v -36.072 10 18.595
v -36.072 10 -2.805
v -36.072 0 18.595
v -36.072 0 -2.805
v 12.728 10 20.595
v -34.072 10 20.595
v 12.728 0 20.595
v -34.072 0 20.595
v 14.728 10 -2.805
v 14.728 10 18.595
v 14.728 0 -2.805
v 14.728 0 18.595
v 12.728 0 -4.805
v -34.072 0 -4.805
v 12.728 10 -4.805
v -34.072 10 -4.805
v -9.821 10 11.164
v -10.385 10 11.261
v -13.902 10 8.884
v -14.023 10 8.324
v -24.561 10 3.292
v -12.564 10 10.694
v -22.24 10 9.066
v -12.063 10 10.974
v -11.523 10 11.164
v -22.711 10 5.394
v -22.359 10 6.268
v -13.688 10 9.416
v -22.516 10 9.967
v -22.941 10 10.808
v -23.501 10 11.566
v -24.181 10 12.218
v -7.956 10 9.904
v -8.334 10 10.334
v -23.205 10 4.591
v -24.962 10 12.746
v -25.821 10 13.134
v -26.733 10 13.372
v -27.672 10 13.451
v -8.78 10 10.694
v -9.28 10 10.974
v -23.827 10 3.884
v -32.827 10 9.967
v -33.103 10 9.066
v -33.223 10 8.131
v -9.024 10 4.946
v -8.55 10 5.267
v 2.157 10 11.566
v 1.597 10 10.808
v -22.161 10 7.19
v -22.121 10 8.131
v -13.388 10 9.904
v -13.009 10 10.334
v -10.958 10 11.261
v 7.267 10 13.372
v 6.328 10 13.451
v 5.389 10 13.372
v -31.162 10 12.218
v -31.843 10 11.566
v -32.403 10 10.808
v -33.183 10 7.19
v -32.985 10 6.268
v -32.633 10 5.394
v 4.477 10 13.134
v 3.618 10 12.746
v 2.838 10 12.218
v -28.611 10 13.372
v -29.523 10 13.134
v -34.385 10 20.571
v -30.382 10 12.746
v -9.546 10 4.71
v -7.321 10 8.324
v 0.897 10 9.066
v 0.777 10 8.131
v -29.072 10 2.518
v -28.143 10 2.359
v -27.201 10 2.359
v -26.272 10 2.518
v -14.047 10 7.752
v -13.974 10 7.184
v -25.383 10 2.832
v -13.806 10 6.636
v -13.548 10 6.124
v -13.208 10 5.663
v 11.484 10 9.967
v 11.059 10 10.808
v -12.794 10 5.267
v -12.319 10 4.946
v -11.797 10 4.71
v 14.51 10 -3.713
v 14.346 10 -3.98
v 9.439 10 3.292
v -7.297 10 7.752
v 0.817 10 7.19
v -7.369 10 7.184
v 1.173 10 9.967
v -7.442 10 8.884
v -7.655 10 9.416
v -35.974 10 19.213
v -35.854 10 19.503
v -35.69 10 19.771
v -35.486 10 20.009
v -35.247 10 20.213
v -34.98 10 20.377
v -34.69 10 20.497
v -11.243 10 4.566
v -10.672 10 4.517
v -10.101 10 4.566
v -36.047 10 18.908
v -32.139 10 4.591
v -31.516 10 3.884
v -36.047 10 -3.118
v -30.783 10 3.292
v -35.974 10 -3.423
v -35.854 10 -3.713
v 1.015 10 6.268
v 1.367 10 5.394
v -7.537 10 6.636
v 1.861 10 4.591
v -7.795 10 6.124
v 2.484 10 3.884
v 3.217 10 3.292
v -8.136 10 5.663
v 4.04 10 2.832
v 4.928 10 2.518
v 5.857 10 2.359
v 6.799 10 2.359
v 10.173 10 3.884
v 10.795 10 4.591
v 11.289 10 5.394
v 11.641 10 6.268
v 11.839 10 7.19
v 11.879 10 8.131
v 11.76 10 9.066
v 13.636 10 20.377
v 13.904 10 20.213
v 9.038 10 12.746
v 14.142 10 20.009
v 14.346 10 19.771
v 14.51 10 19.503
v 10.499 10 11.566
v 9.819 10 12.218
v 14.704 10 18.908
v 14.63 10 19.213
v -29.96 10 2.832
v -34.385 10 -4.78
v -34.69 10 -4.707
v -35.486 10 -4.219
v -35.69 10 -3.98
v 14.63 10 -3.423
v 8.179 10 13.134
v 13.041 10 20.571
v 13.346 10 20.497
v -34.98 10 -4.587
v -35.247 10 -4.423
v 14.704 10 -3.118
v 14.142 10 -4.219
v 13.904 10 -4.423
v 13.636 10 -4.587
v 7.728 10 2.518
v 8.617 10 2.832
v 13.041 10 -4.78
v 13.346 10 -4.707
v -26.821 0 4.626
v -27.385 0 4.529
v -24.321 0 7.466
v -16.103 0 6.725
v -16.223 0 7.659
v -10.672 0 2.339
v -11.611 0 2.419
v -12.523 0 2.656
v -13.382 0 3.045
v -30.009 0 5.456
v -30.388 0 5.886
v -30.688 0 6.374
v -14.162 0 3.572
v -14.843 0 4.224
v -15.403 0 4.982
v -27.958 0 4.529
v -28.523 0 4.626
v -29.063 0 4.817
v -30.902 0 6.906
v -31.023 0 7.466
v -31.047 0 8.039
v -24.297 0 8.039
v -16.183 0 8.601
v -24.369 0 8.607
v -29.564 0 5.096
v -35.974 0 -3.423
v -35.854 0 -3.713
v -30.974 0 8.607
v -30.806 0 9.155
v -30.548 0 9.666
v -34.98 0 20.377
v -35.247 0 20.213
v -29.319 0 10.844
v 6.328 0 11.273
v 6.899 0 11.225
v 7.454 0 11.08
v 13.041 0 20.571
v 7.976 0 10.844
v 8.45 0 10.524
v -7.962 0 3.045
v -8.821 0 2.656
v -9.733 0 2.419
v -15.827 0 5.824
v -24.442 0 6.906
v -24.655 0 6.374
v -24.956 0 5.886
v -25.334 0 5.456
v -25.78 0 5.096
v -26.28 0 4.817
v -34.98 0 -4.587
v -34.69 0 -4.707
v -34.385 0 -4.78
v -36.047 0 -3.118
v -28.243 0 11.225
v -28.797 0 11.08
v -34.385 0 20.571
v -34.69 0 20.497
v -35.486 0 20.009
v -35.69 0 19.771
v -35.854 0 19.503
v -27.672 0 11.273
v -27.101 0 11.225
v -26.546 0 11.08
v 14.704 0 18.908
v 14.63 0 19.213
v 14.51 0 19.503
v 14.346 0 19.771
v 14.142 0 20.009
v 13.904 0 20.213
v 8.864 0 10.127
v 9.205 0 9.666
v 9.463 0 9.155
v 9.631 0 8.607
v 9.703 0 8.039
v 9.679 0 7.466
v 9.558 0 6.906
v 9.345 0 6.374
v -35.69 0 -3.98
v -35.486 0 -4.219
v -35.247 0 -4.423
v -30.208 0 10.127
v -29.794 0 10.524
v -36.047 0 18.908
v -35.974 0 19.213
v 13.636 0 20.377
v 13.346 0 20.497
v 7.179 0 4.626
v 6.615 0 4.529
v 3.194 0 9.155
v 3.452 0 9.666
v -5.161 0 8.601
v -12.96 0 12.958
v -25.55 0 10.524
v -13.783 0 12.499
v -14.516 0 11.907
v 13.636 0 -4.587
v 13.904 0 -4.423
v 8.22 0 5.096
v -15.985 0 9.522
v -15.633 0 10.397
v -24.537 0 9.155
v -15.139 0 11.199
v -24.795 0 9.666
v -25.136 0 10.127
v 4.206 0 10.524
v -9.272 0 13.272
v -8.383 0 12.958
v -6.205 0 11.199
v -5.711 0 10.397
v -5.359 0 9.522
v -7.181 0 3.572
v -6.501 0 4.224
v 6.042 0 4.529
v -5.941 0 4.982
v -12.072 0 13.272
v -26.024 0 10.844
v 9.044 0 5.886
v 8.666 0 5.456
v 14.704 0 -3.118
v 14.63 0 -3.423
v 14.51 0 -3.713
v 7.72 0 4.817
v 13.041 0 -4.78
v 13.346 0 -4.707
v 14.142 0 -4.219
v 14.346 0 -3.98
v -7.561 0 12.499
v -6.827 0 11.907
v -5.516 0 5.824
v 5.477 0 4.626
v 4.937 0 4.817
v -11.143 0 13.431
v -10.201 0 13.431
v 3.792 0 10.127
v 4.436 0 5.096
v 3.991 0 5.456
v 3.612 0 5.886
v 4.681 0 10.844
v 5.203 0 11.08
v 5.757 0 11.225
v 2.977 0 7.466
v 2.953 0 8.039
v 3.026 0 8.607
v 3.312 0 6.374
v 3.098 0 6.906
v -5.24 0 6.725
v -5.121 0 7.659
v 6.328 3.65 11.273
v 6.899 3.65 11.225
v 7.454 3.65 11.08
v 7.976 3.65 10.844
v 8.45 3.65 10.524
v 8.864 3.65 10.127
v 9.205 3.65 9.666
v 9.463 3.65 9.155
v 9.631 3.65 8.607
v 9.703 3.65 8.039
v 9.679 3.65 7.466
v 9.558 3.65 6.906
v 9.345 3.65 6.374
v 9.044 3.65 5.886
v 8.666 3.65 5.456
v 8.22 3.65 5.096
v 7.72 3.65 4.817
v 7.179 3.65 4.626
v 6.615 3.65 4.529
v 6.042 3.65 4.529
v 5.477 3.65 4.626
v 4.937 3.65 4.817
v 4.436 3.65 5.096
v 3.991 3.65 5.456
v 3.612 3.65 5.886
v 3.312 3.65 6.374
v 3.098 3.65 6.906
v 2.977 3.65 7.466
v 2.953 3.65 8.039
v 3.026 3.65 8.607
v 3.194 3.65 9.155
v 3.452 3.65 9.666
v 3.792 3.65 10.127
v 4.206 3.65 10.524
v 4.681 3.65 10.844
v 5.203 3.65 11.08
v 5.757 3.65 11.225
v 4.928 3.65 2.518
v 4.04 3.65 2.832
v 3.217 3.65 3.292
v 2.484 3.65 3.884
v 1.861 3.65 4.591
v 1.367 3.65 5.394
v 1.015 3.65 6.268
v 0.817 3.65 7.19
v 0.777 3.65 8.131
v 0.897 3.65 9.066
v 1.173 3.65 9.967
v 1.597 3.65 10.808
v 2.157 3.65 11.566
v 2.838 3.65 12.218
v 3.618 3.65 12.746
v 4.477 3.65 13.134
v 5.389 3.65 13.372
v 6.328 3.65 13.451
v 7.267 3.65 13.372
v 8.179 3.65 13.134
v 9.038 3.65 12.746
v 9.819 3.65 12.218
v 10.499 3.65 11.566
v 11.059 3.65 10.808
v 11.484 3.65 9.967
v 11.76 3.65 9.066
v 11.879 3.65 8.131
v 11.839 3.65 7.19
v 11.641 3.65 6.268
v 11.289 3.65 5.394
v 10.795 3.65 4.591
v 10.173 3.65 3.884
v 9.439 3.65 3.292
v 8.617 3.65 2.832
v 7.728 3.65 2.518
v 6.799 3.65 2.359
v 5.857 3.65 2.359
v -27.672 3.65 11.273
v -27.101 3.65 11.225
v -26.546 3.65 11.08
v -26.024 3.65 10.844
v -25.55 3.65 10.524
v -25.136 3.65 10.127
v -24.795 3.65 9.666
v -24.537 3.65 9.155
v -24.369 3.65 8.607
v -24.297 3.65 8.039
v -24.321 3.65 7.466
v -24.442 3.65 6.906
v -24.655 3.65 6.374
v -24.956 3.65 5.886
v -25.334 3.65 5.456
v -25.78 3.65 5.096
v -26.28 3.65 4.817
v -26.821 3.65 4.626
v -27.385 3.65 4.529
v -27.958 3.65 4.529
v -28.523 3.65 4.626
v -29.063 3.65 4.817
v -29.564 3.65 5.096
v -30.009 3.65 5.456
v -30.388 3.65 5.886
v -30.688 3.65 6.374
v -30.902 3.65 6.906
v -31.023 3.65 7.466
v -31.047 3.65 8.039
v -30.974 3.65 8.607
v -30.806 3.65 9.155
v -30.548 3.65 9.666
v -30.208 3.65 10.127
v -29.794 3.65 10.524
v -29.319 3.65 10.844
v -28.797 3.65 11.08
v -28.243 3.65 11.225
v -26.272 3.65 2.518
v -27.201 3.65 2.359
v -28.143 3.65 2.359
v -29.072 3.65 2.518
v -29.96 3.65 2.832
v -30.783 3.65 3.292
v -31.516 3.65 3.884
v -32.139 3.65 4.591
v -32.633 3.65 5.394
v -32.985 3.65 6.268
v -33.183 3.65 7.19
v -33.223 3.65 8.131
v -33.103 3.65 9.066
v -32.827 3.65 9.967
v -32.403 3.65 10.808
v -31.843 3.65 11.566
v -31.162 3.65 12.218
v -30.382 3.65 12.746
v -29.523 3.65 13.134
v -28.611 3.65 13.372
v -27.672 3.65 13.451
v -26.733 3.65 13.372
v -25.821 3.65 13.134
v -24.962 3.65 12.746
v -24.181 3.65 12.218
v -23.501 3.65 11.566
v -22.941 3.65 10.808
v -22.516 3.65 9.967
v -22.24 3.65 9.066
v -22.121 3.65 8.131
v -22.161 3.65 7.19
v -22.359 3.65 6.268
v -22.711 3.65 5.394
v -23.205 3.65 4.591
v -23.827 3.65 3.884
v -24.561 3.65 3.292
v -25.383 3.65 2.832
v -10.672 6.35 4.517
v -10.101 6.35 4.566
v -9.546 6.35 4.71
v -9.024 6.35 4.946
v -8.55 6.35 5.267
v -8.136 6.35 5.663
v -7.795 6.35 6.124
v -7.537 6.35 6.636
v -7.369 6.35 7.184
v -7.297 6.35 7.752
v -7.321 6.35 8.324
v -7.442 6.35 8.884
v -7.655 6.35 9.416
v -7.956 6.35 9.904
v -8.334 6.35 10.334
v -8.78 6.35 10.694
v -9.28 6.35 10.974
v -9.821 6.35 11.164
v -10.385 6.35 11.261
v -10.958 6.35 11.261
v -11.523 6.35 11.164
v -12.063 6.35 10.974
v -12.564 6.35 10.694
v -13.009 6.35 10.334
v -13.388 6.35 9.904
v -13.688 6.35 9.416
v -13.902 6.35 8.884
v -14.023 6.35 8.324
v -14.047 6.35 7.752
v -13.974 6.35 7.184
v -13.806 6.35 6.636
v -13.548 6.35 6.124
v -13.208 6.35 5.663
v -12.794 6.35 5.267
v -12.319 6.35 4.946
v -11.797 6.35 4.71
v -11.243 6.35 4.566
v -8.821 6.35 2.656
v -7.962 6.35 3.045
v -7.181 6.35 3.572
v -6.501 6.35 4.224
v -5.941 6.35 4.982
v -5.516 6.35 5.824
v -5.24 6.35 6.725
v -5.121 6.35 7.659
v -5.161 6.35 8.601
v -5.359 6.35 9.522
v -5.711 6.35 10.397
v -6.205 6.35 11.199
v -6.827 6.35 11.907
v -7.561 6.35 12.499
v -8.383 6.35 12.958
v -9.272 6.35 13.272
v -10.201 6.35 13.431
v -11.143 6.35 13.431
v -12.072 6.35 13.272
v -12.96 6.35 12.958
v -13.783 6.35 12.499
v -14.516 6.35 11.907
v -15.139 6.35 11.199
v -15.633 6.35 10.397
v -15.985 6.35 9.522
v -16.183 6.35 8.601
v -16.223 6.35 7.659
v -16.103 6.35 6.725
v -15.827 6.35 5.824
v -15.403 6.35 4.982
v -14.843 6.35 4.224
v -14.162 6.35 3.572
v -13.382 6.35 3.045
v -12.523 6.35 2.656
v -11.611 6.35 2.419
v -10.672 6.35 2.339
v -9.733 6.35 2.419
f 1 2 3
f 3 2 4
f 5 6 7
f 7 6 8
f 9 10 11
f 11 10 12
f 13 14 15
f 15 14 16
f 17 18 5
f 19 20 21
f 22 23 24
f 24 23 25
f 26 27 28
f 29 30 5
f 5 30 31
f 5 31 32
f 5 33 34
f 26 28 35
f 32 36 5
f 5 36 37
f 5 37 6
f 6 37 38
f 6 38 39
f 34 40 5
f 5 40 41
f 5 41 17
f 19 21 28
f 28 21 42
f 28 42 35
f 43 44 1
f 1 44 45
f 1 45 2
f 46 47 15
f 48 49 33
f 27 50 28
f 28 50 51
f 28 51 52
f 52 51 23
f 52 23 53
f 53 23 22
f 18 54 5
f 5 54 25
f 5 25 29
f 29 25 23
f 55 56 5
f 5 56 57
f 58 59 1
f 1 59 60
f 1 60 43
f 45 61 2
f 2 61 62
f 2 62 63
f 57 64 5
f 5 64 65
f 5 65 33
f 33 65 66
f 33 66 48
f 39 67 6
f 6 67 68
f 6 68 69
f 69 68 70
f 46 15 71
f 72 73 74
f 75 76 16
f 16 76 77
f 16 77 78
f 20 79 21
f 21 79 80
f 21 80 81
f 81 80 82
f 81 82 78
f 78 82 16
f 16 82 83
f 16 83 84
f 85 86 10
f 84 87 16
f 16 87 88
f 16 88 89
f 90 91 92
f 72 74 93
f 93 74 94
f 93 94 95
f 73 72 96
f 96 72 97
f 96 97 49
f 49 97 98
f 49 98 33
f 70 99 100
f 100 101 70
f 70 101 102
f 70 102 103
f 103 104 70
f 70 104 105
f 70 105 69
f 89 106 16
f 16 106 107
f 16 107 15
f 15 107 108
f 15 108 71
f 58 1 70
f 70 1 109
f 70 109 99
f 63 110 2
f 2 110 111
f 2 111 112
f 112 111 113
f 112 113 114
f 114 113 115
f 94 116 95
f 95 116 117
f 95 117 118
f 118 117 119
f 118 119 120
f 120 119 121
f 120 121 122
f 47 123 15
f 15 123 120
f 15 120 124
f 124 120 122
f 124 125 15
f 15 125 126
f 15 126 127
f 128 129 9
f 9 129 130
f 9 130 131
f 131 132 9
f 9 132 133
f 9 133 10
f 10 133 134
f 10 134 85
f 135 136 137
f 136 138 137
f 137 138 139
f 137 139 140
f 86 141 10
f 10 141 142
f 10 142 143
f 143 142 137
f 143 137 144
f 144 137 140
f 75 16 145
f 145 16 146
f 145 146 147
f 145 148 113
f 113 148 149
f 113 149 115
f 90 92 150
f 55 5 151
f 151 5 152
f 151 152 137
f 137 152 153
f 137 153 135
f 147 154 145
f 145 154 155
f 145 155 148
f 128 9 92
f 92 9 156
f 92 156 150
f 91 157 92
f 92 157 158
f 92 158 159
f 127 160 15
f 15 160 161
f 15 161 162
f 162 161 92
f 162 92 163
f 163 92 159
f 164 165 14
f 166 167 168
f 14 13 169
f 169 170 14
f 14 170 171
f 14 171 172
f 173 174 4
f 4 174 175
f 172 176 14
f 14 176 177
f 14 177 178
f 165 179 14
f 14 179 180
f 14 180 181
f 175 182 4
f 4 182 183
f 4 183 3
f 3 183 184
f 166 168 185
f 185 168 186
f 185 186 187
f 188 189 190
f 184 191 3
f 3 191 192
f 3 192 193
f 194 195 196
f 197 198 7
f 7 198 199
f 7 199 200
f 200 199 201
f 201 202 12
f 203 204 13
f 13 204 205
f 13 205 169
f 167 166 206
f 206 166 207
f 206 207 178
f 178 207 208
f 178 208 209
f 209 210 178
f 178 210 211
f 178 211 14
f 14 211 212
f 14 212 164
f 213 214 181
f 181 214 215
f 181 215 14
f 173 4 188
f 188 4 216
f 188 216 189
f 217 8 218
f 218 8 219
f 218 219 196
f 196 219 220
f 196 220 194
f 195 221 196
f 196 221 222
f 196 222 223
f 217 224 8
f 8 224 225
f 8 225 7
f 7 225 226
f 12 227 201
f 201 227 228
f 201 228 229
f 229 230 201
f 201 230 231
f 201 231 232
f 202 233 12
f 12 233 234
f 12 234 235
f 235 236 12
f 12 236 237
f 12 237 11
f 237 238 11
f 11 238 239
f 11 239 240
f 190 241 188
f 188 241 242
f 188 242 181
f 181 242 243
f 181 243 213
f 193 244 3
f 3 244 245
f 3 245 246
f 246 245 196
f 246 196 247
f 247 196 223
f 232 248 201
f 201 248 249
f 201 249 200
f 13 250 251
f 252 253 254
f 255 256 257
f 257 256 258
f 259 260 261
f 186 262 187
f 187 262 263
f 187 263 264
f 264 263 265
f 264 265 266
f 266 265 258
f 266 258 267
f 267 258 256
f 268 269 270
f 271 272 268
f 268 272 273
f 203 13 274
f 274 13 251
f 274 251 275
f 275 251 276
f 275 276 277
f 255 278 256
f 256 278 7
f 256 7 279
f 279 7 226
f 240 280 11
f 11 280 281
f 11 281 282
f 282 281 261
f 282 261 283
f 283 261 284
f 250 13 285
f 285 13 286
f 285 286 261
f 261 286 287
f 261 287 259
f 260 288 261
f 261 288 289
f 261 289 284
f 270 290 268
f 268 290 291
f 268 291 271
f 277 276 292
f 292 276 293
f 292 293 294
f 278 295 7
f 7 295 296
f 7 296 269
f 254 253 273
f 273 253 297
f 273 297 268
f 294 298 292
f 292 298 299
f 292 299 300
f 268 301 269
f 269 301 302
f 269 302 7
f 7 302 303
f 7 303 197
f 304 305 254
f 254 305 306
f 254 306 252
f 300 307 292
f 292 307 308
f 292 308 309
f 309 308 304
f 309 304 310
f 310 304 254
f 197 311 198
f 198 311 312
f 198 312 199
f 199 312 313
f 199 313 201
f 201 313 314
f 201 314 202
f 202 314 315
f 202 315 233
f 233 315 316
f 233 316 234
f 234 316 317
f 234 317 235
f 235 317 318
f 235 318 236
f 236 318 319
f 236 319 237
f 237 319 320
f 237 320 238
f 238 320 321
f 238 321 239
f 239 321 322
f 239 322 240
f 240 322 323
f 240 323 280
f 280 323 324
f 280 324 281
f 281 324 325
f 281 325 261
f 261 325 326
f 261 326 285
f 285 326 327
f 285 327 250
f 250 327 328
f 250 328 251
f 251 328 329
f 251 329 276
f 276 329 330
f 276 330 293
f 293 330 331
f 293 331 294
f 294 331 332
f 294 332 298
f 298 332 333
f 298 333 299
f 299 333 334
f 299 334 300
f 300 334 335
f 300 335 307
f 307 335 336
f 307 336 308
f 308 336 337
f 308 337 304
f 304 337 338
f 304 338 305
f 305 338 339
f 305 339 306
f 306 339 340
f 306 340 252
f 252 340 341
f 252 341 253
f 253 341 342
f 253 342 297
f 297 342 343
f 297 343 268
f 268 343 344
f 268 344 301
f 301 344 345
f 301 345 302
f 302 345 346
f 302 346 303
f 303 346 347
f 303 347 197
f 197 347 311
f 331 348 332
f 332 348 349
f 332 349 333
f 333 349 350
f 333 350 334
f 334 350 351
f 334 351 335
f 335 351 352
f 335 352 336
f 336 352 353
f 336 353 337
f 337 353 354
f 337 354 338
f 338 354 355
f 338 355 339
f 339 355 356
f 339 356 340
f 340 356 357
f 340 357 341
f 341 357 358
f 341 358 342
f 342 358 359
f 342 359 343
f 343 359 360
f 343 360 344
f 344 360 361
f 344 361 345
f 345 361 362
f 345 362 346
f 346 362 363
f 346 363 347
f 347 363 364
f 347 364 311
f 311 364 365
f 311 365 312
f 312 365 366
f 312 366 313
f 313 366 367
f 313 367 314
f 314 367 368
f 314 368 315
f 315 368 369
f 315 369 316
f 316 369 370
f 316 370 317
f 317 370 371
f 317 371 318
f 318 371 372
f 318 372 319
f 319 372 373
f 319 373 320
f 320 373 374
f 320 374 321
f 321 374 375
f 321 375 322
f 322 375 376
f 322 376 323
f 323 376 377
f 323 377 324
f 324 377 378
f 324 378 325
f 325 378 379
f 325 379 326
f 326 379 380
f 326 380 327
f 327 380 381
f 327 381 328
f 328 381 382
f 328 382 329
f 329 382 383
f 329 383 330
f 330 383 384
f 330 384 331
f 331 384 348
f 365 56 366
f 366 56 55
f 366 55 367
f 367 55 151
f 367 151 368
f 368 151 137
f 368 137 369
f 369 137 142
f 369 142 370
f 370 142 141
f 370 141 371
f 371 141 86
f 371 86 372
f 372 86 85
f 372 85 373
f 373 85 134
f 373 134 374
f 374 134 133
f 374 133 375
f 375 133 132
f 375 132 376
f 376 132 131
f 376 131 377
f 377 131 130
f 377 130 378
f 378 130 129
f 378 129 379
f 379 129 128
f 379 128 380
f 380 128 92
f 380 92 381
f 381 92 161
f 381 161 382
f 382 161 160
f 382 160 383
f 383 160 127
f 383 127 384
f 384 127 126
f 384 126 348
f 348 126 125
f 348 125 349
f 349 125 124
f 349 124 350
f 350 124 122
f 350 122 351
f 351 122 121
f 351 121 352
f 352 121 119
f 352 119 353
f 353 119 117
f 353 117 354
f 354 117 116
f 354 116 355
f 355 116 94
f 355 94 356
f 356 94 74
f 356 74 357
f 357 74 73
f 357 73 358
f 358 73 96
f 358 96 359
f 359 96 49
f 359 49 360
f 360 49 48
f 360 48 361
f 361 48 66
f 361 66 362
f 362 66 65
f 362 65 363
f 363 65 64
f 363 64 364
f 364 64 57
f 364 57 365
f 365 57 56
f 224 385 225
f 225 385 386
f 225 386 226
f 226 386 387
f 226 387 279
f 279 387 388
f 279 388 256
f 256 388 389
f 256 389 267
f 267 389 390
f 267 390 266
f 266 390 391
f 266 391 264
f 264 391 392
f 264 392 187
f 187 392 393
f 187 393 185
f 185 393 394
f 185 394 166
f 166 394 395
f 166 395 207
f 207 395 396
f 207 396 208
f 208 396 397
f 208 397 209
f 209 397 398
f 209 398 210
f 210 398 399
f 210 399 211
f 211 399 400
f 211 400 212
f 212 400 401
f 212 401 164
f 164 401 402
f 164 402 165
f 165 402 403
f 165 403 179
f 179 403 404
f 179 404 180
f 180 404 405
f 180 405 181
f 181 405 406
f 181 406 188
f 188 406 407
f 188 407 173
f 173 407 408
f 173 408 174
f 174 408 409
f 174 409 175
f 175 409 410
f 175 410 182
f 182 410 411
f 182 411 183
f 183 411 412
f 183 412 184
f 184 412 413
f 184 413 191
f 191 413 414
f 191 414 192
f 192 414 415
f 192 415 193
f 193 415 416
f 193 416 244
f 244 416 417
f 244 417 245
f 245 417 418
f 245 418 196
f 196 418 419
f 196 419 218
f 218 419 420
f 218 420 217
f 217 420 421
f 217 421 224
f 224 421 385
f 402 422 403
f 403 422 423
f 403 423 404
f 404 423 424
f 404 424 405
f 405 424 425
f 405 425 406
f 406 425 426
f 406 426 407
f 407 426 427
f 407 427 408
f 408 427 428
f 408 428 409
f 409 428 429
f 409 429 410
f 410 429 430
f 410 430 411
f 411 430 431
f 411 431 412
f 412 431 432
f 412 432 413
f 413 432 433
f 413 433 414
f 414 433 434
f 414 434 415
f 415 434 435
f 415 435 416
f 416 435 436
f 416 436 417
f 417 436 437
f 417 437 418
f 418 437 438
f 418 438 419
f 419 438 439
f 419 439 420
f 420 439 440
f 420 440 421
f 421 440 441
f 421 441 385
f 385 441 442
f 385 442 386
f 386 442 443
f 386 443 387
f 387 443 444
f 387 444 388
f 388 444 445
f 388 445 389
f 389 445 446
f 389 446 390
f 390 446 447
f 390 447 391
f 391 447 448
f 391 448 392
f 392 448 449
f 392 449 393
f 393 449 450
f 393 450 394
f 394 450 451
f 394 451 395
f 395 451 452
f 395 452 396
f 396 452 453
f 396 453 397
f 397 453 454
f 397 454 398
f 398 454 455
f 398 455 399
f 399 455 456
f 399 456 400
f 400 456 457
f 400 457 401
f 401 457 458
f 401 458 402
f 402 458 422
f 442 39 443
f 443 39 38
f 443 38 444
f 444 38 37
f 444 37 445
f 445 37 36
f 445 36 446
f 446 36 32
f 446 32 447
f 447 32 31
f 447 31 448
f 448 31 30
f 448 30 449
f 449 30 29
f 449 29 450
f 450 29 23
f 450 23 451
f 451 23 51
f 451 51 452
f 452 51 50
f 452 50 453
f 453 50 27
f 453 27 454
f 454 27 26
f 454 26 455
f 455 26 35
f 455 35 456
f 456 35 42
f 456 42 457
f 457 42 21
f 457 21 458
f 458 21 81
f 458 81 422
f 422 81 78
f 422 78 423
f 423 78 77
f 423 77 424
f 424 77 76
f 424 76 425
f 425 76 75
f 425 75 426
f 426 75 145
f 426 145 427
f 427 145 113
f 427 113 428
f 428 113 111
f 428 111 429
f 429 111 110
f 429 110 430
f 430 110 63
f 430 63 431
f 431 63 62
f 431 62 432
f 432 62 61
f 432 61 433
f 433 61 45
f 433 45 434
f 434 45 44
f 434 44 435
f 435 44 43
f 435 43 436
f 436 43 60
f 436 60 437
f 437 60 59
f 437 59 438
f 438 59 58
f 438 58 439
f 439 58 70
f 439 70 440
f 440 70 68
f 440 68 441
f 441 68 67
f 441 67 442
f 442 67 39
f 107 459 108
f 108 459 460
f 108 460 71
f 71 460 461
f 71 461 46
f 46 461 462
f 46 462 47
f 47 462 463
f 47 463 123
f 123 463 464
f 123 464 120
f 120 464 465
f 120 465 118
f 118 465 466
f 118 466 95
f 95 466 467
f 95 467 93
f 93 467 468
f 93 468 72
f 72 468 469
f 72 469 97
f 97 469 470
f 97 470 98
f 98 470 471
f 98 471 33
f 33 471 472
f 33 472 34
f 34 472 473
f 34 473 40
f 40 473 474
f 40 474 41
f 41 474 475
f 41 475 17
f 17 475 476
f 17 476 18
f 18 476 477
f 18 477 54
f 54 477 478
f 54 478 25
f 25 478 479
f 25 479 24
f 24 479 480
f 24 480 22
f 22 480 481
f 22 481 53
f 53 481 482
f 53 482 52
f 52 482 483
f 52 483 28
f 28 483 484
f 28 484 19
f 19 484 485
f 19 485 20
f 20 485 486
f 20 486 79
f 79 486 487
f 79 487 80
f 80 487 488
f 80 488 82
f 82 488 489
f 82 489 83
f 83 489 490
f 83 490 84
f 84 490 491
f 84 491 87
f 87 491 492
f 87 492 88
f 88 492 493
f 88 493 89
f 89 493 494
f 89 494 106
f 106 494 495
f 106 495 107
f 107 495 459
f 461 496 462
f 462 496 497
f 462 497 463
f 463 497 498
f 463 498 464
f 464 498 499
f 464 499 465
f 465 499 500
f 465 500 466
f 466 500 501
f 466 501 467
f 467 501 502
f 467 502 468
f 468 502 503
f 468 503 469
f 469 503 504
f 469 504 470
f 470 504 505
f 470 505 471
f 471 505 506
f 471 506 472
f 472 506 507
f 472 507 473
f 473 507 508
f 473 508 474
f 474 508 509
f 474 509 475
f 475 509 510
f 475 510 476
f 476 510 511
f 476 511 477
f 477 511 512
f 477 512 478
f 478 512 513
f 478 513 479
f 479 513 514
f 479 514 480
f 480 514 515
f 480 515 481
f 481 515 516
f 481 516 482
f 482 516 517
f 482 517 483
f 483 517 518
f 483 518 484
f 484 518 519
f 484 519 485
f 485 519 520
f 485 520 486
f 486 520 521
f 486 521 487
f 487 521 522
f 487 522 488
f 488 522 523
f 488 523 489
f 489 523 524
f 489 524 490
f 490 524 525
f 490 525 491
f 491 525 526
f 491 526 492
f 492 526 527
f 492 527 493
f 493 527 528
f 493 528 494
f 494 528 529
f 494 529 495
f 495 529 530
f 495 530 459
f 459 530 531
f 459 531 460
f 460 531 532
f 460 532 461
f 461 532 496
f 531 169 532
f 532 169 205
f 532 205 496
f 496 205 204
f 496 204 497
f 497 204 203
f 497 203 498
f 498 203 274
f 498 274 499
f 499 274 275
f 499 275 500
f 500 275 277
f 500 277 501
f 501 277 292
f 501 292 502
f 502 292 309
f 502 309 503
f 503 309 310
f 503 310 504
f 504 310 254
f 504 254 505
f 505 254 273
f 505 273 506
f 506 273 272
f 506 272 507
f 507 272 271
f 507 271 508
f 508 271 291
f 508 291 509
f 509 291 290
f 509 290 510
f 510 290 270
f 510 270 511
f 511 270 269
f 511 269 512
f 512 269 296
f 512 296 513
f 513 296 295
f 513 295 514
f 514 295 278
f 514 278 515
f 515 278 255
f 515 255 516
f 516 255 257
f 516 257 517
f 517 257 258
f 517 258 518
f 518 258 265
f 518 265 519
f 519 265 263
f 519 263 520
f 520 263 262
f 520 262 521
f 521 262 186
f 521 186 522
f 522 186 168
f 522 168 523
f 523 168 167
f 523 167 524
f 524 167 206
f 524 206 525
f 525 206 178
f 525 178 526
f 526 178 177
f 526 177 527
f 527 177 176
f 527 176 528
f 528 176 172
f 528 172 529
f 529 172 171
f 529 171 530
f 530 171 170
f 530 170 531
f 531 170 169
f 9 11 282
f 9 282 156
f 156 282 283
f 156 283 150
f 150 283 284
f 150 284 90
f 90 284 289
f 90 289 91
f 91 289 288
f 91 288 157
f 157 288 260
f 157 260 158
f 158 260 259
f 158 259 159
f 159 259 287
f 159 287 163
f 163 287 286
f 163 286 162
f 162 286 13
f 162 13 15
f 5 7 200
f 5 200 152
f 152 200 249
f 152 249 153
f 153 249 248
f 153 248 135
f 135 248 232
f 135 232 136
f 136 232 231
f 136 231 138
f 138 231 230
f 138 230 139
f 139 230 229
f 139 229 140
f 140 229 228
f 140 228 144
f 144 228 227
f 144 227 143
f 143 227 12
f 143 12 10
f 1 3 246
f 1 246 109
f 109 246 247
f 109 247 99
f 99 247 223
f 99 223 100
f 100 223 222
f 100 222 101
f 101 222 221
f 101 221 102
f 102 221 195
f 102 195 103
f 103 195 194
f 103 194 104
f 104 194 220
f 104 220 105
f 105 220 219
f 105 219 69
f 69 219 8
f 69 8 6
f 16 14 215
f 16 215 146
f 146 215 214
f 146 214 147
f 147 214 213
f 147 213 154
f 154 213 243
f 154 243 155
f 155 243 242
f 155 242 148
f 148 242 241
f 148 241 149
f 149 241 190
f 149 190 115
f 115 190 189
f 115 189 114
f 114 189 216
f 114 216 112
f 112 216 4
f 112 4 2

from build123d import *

# Parameters (mm, degrees)
SKETCH1_W                                        = 50.8
SKETCH1_H                                        = 25.4
BOSS_EXTRUDE1_DEPTH                              = 10
CBORE_FOR_1_4_SOCKET_HEAD_CAP_SCREW2_D           = 6.7564
CBORE_FOR_1_4_SOCKET_HEAD_CAP_SCREW2_CBORE_D     = 11.1125
CBORE_FOR_1_4_SOCKET_HEAD_CAP_SCREW2_CBORE_DEPTH = 6.35
CBORE_FOR_1_4_SOCKET_HEAD_CAP_SCREW3_D           = 6.7564
CBORE_FOR_1_4_SOCKET_HEAD_CAP_SCREW3_CBORE_D     = 11.1125
CBORE_FOR_1_4_SOCKET_HEAD_CAP_SCREW3_CBORE_DEPTH = 6.35
FILLET2_R                                        = 2


with BuildPart() as part:
    # Sketch1 → Boss-Extrude1 (new body)
    with BuildSketch(Plane(origin=(0, 0, 0), x_dir=(1, 0, 0), z_dir=(0, 1, 0))):
        with Locations((-10.671863118, -7.895247148)):
            Rectangle(SKETCH1_W, SKETCH1_H)
    extrude(amount=BOSS_EXTRUDE1_DEPTH)

    # CBORE for 1/4 Socket Head Cap Screw2 (through all)
    with Locations(Plane(origin=(0, 10, 0), x_dir=(1, 0, 0), z_dir=(0, 1, 0))):
        with Locations((-27.671863118, -7.895247148), (6.328136882, -7.895247148)):
            CounterBoreHole(CBORE_FOR_1_4_SOCKET_HEAD_CAP_SCREW2_D / 2, CBORE_FOR_1_4_SOCKET_HEAD_CAP_SCREW2_CBORE_D / 2, CBORE_FOR_1_4_SOCKET_HEAD_CAP_SCREW2_CBORE_DEPTH)

    # CBORE for 1/4 Socket Head Cap Screw3 (through all)
    with Locations(Plane(origin=(0, 0, 0), x_dir=(-1, 0, 0), z_dir=(0, -1, 0))):
        with Locations((10.671863118, -7.895247148)):
            CounterBoreHole(CBORE_FOR_1_4_SOCKET_HEAD_CAP_SCREW3_D / 2, CBORE_FOR_1_4_SOCKET_HEAD_CAP_SCREW3_CBORE_D / 2, CBORE_FOR_1_4_SOCKET_HEAD_CAP_SCREW3_CBORE_DEPTH)

    # Fillet2
    fillet2_edges = [part.edges().sort_by_distance(p)[0] for p in [
        (-36.071863118, 5, -4.804752852),
        (14.728136882, 5, -4.804752852),
        (14.728136882, 5, 20.595247148),
        (-36.071863118, 5, 20.595247148),
    ]]
    fillet(fillet2_edges, radius=FILLET2_R)


solid = part.part
